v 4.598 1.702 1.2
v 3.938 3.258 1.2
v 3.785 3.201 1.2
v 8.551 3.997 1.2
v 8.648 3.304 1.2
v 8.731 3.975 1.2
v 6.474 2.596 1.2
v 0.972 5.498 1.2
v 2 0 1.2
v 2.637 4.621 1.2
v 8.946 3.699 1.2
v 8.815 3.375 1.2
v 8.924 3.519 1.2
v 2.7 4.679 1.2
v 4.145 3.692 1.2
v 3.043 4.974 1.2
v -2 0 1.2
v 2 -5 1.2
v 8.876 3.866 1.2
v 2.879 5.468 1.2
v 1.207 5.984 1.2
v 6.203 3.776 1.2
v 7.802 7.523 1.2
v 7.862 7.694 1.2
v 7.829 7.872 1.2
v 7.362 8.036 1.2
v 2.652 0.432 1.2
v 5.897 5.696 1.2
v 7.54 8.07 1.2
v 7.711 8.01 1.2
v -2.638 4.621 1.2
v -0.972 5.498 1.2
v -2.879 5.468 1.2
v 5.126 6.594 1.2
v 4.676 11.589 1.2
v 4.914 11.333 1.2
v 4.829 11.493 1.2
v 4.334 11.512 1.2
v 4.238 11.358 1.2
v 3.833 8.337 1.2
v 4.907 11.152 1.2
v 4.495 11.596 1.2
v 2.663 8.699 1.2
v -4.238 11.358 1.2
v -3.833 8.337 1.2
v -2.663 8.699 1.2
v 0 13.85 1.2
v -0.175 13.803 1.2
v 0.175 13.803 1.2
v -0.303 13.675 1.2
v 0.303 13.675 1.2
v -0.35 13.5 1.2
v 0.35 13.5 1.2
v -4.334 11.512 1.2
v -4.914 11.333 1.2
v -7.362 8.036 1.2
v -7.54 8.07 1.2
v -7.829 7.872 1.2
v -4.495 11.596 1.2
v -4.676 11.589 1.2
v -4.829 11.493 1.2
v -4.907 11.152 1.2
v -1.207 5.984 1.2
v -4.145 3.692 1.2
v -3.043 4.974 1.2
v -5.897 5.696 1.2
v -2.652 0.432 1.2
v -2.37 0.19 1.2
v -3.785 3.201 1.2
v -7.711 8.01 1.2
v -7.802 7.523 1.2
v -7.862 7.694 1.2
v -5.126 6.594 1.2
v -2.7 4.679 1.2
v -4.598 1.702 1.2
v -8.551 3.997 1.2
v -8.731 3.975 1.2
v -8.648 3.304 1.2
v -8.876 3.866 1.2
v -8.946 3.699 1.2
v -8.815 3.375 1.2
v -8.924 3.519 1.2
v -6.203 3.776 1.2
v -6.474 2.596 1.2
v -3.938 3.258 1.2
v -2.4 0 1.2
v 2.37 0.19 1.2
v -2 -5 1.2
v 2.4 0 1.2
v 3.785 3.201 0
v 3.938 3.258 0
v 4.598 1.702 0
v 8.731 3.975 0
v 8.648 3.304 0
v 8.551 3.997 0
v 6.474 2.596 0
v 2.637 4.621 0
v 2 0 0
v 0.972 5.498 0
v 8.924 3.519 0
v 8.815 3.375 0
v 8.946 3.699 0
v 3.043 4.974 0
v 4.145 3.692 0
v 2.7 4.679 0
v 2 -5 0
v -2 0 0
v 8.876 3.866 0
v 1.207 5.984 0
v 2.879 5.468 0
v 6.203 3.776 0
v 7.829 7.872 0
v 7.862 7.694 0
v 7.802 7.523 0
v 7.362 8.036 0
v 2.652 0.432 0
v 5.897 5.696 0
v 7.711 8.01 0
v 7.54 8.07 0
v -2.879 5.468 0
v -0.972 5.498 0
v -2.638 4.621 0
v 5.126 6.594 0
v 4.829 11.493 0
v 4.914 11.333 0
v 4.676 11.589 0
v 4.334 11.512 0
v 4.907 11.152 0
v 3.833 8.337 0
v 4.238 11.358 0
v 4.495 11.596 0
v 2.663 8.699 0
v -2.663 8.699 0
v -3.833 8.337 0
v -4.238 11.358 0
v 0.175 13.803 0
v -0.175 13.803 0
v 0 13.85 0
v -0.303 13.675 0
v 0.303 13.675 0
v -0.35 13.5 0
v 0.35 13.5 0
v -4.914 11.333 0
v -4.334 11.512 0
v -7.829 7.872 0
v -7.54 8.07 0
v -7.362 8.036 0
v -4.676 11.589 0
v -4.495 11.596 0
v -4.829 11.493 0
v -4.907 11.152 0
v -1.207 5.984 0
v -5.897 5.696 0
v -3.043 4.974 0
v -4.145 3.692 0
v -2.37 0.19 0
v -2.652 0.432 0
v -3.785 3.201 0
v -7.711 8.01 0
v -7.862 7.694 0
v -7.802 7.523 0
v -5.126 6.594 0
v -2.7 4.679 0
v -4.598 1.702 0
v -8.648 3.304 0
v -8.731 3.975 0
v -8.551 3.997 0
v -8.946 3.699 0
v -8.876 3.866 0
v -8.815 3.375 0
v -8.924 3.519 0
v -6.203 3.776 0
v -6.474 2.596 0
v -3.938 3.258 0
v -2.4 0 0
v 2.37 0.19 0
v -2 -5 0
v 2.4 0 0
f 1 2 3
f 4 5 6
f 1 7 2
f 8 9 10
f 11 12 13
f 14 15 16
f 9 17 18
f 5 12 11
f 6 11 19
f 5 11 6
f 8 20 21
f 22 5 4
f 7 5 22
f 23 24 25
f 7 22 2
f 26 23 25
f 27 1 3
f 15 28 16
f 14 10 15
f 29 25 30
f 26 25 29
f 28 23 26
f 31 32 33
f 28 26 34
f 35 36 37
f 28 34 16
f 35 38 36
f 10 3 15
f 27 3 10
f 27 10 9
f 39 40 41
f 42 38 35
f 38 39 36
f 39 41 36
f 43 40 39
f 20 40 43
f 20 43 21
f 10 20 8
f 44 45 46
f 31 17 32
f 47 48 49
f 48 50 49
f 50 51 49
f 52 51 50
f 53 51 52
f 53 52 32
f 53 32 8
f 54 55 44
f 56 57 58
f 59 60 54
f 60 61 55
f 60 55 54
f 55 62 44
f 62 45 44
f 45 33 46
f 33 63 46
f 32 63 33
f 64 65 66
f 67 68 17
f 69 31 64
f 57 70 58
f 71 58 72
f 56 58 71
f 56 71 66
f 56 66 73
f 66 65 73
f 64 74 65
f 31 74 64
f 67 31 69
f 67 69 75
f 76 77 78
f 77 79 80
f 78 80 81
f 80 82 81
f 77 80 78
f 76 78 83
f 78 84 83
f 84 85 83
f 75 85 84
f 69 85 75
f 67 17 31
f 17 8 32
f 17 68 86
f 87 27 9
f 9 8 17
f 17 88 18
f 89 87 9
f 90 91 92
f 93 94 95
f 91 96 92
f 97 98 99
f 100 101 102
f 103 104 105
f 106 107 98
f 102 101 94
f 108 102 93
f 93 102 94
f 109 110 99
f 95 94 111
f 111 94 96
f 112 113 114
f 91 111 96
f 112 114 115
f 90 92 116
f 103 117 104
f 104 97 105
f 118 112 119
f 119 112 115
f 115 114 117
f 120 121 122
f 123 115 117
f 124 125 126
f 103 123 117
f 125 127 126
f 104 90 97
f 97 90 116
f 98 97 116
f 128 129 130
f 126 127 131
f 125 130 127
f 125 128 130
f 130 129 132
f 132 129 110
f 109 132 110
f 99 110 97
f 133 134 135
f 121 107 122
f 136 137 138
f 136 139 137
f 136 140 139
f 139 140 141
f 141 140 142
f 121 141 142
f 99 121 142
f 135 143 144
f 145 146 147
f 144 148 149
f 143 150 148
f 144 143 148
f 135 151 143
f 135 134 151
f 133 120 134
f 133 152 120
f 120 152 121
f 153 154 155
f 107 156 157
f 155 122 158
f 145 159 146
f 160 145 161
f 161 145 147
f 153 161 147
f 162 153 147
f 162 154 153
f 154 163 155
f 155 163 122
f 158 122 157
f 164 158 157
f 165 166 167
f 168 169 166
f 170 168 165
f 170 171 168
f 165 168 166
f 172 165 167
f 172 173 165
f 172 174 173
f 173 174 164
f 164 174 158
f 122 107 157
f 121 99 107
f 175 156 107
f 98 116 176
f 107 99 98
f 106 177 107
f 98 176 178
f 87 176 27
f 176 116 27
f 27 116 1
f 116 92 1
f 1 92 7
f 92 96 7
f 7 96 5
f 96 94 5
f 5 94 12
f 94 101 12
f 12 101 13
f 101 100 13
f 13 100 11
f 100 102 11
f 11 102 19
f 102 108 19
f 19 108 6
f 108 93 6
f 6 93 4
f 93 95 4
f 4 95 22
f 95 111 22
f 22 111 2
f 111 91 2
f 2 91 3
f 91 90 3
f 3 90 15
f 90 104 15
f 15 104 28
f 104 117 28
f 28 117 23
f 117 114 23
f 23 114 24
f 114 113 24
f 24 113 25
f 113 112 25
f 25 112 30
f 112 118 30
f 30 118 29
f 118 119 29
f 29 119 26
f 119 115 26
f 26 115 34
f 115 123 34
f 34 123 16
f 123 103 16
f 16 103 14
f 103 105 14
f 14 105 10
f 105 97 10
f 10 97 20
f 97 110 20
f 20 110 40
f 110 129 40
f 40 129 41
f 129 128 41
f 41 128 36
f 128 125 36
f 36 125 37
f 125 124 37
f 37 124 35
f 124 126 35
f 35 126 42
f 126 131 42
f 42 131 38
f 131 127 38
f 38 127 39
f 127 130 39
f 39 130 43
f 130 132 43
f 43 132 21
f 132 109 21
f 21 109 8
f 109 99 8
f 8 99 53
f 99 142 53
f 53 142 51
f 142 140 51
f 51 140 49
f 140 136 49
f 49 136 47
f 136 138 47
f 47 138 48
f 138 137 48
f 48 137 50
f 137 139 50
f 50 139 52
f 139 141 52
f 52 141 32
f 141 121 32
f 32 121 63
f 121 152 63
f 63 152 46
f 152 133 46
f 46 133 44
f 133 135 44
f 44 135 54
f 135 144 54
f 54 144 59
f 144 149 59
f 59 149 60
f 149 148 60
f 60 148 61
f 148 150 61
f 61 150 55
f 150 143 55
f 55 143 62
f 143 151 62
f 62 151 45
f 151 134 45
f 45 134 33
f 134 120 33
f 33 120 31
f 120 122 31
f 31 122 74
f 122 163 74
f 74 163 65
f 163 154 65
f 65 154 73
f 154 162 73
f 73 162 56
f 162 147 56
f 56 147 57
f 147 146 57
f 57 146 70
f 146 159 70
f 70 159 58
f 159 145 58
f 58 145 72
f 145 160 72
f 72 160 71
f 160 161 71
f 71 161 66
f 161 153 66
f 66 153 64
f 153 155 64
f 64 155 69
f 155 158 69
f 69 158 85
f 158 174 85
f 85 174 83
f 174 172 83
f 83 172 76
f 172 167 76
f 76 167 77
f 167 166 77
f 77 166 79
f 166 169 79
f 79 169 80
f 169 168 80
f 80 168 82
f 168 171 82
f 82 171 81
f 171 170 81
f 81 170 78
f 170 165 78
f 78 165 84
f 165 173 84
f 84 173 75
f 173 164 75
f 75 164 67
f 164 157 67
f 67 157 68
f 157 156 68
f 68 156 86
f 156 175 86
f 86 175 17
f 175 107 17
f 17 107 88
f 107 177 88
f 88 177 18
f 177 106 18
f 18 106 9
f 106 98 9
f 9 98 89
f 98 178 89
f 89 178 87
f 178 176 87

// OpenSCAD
// Plant_Leaves_03.stl  -  Store Versile room frame (Rev C)
// Quantity: 1   Filament: Light green (e.g. PLA Matte Apple Green)
// Print: layer 0.12 mm, infill 100%, 2 walls, brim 0 mm, NO supports
// Orientation: back  (lying on its back, front face up)
// Notes: Flat, 1.2 mm.
// The library draws parts with their front toward +Y; mirror([0,1,0]) makes the real
// part face the viewer correctly (see build.py). Edit dimensions in versile_parts.scad.
use <../versile_parts.scad>

rotate([-90, 0, 0]) mirror([0, 1, 0]) plant_leaves_03();
